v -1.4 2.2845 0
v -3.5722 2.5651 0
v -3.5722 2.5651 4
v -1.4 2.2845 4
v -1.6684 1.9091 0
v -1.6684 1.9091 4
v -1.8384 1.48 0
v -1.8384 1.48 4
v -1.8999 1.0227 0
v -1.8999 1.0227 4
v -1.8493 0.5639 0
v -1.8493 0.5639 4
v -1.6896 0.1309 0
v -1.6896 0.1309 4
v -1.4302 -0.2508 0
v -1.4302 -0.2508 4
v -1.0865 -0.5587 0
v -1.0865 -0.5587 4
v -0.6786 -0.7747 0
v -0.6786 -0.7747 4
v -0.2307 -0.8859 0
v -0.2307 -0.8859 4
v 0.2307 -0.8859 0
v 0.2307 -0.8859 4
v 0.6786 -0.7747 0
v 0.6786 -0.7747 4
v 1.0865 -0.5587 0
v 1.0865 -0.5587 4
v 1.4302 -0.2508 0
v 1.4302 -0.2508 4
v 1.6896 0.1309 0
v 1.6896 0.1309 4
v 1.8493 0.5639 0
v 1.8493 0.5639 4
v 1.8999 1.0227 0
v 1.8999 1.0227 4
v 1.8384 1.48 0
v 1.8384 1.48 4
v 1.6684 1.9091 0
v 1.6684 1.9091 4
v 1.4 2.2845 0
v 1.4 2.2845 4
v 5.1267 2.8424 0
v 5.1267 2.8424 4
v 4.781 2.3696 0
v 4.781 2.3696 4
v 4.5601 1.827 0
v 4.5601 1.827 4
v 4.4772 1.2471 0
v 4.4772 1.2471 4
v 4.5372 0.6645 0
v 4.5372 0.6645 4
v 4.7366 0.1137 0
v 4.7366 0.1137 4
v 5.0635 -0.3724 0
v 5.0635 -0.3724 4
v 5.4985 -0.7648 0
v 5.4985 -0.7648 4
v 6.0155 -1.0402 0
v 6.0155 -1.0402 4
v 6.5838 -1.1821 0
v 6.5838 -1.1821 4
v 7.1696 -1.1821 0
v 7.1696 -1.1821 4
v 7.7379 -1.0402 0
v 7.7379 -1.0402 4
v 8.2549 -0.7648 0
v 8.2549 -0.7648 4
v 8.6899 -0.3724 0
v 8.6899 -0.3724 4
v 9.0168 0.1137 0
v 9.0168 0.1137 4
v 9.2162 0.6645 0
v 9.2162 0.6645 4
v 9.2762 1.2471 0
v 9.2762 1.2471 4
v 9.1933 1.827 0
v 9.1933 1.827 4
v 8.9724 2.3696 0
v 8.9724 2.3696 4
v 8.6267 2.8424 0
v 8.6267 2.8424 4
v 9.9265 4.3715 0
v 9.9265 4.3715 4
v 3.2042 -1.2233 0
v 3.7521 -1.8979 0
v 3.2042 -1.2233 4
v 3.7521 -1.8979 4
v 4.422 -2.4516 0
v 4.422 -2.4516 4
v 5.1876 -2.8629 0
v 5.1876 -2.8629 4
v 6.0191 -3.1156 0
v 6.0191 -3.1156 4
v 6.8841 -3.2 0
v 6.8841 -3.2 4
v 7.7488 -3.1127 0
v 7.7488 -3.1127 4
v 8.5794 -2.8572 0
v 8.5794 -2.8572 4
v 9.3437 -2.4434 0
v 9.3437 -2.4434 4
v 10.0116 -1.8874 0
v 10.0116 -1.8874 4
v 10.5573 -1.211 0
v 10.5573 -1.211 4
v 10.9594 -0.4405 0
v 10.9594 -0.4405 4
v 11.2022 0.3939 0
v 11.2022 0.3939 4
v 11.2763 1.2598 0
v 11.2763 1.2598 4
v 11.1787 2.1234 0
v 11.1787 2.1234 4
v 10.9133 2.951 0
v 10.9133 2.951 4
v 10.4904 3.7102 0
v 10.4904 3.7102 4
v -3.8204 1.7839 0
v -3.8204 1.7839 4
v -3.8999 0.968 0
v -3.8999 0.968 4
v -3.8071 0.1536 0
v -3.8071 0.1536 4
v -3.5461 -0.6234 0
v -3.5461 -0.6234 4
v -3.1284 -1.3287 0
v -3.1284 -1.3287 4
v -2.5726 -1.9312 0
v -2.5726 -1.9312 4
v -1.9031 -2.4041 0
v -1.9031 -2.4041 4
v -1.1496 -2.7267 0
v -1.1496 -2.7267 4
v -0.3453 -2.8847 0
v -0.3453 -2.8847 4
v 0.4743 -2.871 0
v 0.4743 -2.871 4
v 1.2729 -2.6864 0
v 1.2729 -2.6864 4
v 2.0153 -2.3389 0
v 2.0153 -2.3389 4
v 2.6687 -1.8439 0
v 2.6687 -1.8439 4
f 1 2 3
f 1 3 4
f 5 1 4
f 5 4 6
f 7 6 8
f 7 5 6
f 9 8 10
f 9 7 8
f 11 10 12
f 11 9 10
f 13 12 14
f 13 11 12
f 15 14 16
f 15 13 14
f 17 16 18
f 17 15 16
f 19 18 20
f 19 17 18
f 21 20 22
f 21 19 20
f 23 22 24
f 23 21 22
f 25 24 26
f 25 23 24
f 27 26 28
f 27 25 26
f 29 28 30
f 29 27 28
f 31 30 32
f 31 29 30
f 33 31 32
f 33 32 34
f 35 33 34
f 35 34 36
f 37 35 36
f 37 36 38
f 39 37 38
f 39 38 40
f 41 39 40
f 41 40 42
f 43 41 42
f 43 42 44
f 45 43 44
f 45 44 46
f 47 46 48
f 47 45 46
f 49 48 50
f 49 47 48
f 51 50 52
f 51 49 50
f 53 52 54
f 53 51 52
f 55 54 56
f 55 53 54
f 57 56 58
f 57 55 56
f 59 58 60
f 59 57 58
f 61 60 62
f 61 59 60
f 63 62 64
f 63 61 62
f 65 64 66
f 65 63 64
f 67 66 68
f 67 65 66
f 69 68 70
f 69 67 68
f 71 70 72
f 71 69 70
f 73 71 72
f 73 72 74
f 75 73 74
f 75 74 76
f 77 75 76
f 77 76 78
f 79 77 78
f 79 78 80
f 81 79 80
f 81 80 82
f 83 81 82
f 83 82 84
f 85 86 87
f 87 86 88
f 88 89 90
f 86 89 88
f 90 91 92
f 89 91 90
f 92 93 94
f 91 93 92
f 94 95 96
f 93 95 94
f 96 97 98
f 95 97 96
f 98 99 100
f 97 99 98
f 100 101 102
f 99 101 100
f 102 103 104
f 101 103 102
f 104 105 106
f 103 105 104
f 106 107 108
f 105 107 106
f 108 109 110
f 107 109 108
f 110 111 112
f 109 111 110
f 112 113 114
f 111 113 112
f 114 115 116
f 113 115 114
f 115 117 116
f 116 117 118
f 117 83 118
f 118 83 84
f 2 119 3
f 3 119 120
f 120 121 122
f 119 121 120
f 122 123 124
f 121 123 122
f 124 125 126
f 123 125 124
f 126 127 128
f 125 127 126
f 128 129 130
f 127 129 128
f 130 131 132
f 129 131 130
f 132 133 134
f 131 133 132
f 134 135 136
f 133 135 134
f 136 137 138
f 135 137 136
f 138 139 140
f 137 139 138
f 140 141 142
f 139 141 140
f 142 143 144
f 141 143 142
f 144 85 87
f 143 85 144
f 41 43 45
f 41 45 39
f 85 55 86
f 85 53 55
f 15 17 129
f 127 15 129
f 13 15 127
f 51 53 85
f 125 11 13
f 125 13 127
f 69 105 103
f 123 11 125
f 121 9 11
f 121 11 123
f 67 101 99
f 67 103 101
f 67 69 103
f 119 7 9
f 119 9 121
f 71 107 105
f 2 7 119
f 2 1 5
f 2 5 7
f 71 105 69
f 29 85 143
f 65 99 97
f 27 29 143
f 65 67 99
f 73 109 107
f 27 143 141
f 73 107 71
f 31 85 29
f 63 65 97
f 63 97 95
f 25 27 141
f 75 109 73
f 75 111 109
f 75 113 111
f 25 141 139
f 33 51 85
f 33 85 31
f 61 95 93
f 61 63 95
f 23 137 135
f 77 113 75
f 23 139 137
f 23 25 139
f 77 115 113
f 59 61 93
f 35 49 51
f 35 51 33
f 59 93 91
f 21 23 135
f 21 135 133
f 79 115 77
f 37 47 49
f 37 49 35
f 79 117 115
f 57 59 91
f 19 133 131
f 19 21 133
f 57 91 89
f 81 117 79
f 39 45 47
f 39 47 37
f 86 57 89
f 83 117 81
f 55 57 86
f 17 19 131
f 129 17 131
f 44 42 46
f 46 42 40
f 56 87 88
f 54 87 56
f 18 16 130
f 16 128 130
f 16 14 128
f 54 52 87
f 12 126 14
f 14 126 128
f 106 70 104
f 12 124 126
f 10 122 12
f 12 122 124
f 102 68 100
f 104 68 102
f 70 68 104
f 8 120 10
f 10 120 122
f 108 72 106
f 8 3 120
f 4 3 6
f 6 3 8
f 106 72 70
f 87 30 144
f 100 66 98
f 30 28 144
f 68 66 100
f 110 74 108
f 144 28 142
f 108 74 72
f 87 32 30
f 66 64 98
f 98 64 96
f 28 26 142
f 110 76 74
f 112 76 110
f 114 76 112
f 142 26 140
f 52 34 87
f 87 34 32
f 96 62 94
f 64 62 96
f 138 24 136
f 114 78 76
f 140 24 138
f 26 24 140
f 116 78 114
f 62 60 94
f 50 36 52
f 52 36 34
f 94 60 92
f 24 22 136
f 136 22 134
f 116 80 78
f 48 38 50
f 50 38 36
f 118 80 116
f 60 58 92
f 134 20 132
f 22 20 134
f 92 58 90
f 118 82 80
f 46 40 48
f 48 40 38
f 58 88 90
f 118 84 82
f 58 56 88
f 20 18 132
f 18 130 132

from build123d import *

# Parameters (mm, degrees)
PAD_DEPTH = 4


with BuildPart() as part:
    # Sketch → Pad (new body)
    with BuildSketch(Plane.XY):
        with BuildLine():
            ThreePointArc((-1.4, 2.284523), (0, -0.9), (1.4, 2.284523))
            Line((1.4, 2.284523), (5.126697, 2.842407))
            ThreePointArc((5.126697, 2.842407), (6.876697, -1.2), (8.626697, 2.842407))
            Line((8.626697, 2.842407), (9.926509, 4.371537))
            ThreePointArc((3.204177, -1.223343), (9.691411, -2.181921), (9.926509, 4.371537))
            ThreePointArc((-3.572196, 2.565062), (-1.903119, -2.404136), (3.204177, -1.223343))
            Line((-3.572196, 2.565062), (-1.4, 2.284523))
        make_face()
    extrude(amount=PAD_DEPTH)


solid = part.part
